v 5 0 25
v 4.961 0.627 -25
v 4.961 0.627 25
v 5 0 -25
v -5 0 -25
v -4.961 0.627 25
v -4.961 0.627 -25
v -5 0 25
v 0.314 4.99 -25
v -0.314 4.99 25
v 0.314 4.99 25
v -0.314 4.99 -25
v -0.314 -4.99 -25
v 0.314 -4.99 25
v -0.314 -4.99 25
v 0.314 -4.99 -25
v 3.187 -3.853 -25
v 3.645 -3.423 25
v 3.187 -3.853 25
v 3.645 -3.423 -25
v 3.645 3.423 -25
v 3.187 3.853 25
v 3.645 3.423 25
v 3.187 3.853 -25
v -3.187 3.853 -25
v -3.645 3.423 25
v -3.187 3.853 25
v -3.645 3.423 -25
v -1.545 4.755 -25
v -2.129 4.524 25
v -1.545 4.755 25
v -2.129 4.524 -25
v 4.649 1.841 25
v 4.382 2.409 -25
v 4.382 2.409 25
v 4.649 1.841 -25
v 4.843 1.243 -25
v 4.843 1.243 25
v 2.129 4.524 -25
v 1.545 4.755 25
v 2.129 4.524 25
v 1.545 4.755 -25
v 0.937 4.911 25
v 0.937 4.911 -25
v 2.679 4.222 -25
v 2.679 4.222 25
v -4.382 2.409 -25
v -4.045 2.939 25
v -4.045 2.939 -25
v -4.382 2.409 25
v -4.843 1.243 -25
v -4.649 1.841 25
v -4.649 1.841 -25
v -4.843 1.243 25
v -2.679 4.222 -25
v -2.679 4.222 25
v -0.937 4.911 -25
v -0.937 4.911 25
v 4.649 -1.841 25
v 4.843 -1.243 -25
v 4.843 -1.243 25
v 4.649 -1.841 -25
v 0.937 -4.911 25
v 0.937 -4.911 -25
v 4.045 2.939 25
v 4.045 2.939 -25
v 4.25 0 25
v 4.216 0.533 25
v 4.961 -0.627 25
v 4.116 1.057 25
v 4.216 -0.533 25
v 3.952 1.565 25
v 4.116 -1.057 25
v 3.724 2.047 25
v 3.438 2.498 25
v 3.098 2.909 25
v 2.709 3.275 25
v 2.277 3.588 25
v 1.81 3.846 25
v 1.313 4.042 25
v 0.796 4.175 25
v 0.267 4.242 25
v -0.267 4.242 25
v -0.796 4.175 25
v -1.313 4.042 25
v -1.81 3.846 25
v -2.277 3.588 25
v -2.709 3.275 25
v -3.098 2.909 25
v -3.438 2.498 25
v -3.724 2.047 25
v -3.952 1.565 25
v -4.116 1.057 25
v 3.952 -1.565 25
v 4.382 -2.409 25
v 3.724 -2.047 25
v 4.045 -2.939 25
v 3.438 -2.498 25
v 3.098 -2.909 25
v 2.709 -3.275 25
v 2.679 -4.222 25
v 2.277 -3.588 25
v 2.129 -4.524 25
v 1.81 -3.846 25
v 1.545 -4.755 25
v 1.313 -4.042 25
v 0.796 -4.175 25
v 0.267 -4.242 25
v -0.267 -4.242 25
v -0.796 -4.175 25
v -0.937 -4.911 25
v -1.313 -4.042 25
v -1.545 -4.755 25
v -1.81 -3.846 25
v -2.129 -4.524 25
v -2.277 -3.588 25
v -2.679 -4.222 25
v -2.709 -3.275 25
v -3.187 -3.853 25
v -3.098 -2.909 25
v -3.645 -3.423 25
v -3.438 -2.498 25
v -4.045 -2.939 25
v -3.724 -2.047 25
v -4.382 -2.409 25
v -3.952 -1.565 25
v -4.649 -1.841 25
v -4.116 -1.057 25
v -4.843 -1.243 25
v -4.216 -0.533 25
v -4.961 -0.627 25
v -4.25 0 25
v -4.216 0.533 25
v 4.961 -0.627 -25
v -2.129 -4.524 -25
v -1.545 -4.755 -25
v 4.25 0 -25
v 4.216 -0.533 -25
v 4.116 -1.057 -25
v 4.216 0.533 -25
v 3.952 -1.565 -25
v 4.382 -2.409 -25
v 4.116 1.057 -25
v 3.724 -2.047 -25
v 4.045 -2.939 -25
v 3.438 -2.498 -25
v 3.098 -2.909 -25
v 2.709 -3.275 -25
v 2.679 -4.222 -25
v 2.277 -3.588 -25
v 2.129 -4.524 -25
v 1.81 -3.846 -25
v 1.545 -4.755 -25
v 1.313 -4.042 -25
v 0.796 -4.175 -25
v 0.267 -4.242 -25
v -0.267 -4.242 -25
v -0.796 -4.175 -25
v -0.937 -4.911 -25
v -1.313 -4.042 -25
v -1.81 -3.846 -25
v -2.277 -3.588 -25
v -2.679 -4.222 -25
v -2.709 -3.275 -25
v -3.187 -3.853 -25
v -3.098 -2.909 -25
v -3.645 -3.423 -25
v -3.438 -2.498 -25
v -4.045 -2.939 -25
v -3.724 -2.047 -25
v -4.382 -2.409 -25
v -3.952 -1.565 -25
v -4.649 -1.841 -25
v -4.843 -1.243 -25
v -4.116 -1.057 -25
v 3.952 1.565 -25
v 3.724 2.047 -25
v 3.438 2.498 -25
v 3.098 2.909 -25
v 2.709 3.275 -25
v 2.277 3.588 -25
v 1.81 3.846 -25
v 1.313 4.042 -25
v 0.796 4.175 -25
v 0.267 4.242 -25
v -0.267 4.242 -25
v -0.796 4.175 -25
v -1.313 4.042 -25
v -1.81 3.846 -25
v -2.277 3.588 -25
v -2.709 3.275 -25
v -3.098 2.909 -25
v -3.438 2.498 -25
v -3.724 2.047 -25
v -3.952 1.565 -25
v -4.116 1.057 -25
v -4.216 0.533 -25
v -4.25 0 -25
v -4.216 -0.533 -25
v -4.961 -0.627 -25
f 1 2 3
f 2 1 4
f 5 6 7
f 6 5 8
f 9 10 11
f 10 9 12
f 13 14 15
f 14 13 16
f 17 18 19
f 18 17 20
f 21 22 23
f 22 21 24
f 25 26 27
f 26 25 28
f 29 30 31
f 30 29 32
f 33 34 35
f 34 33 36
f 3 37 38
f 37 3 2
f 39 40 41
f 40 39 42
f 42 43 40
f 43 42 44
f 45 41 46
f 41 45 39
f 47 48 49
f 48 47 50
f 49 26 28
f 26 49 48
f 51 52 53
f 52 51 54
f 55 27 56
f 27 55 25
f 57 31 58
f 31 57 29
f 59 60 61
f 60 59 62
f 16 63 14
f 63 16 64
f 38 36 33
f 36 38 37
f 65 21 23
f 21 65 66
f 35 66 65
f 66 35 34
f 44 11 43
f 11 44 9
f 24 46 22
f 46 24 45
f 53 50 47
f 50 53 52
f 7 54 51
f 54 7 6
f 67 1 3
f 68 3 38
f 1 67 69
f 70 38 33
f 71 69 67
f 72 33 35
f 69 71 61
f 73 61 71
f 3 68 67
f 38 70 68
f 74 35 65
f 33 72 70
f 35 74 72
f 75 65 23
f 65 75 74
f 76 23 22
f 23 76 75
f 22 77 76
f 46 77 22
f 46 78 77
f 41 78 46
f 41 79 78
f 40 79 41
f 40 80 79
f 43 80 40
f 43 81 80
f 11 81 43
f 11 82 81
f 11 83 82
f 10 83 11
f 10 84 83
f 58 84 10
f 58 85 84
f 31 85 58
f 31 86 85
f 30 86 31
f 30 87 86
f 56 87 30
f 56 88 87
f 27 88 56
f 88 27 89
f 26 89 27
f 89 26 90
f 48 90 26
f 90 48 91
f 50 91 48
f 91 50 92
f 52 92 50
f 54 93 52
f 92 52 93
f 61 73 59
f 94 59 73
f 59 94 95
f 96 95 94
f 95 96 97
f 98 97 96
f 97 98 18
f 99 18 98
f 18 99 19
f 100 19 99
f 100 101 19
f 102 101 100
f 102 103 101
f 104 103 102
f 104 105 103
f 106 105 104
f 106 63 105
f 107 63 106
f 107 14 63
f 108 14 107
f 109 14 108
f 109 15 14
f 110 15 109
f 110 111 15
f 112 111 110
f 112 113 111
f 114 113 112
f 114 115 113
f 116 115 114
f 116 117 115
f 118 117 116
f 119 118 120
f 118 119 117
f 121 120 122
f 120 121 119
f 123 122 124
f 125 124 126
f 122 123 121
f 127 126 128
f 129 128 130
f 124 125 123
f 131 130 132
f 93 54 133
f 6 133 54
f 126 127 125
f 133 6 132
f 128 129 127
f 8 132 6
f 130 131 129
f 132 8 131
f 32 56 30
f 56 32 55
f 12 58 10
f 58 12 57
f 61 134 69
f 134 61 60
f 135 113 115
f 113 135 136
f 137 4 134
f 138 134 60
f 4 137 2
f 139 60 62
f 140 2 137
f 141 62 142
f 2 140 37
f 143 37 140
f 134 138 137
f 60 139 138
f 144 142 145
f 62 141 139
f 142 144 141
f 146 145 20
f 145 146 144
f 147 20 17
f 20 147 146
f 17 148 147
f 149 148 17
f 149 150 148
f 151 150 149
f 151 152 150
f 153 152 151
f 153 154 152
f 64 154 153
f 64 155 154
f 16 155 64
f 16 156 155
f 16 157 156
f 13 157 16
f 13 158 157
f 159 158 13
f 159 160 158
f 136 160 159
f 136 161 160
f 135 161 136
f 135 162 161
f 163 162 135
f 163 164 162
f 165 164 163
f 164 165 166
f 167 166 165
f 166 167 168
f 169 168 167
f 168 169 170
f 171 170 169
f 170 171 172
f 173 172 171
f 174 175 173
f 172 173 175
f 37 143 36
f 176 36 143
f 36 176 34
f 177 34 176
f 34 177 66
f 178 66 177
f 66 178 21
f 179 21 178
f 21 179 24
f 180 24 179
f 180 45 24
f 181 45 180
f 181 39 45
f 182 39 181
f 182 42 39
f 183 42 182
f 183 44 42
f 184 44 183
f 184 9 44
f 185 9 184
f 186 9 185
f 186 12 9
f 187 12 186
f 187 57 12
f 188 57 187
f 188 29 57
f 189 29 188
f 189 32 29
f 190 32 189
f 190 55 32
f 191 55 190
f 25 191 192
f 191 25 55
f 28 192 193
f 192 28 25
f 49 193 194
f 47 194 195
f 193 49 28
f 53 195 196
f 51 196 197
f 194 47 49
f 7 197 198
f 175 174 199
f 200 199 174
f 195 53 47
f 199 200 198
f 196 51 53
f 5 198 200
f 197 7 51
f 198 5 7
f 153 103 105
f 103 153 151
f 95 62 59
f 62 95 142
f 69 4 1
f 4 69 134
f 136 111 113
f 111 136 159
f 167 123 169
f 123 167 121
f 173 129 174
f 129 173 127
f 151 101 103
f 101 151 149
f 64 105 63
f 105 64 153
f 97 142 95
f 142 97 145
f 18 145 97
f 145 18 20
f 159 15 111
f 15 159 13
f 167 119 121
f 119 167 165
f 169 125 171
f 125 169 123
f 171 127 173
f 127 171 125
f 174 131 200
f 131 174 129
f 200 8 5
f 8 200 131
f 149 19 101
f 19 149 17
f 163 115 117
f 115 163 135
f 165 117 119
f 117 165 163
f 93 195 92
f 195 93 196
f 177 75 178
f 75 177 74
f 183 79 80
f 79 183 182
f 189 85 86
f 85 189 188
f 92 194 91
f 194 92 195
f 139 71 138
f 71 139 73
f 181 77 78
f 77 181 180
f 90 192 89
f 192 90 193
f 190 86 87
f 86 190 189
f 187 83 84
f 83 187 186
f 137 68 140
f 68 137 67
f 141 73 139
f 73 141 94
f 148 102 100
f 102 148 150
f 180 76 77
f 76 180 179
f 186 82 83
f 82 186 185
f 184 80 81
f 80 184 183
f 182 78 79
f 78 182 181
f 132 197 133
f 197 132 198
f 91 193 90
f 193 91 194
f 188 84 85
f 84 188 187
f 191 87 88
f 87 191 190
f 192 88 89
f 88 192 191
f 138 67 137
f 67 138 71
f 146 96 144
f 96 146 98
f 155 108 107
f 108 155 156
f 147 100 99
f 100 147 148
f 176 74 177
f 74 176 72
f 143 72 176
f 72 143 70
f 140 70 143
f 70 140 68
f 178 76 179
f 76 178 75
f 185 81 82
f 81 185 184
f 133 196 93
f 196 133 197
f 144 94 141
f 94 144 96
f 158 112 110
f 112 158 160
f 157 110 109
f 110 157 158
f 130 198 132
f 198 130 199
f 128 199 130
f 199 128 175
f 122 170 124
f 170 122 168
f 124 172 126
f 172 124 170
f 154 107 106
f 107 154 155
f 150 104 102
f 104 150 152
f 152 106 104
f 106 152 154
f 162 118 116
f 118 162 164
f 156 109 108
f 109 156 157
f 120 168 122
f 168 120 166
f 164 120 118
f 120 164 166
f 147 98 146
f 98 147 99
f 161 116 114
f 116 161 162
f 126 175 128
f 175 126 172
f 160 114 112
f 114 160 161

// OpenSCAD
$fn = 50;


difference() {
	union() {
		translate(v = [0, 0, -25.0000000000]) {
			cylinder(h = 50, r = 5.0000000000);
		}
	}
	union() {
		translate(v = [0, 0, -100.0000000000]) {
			cylinder(h = 200, r = 4.2500000000);
		}
	}
}
